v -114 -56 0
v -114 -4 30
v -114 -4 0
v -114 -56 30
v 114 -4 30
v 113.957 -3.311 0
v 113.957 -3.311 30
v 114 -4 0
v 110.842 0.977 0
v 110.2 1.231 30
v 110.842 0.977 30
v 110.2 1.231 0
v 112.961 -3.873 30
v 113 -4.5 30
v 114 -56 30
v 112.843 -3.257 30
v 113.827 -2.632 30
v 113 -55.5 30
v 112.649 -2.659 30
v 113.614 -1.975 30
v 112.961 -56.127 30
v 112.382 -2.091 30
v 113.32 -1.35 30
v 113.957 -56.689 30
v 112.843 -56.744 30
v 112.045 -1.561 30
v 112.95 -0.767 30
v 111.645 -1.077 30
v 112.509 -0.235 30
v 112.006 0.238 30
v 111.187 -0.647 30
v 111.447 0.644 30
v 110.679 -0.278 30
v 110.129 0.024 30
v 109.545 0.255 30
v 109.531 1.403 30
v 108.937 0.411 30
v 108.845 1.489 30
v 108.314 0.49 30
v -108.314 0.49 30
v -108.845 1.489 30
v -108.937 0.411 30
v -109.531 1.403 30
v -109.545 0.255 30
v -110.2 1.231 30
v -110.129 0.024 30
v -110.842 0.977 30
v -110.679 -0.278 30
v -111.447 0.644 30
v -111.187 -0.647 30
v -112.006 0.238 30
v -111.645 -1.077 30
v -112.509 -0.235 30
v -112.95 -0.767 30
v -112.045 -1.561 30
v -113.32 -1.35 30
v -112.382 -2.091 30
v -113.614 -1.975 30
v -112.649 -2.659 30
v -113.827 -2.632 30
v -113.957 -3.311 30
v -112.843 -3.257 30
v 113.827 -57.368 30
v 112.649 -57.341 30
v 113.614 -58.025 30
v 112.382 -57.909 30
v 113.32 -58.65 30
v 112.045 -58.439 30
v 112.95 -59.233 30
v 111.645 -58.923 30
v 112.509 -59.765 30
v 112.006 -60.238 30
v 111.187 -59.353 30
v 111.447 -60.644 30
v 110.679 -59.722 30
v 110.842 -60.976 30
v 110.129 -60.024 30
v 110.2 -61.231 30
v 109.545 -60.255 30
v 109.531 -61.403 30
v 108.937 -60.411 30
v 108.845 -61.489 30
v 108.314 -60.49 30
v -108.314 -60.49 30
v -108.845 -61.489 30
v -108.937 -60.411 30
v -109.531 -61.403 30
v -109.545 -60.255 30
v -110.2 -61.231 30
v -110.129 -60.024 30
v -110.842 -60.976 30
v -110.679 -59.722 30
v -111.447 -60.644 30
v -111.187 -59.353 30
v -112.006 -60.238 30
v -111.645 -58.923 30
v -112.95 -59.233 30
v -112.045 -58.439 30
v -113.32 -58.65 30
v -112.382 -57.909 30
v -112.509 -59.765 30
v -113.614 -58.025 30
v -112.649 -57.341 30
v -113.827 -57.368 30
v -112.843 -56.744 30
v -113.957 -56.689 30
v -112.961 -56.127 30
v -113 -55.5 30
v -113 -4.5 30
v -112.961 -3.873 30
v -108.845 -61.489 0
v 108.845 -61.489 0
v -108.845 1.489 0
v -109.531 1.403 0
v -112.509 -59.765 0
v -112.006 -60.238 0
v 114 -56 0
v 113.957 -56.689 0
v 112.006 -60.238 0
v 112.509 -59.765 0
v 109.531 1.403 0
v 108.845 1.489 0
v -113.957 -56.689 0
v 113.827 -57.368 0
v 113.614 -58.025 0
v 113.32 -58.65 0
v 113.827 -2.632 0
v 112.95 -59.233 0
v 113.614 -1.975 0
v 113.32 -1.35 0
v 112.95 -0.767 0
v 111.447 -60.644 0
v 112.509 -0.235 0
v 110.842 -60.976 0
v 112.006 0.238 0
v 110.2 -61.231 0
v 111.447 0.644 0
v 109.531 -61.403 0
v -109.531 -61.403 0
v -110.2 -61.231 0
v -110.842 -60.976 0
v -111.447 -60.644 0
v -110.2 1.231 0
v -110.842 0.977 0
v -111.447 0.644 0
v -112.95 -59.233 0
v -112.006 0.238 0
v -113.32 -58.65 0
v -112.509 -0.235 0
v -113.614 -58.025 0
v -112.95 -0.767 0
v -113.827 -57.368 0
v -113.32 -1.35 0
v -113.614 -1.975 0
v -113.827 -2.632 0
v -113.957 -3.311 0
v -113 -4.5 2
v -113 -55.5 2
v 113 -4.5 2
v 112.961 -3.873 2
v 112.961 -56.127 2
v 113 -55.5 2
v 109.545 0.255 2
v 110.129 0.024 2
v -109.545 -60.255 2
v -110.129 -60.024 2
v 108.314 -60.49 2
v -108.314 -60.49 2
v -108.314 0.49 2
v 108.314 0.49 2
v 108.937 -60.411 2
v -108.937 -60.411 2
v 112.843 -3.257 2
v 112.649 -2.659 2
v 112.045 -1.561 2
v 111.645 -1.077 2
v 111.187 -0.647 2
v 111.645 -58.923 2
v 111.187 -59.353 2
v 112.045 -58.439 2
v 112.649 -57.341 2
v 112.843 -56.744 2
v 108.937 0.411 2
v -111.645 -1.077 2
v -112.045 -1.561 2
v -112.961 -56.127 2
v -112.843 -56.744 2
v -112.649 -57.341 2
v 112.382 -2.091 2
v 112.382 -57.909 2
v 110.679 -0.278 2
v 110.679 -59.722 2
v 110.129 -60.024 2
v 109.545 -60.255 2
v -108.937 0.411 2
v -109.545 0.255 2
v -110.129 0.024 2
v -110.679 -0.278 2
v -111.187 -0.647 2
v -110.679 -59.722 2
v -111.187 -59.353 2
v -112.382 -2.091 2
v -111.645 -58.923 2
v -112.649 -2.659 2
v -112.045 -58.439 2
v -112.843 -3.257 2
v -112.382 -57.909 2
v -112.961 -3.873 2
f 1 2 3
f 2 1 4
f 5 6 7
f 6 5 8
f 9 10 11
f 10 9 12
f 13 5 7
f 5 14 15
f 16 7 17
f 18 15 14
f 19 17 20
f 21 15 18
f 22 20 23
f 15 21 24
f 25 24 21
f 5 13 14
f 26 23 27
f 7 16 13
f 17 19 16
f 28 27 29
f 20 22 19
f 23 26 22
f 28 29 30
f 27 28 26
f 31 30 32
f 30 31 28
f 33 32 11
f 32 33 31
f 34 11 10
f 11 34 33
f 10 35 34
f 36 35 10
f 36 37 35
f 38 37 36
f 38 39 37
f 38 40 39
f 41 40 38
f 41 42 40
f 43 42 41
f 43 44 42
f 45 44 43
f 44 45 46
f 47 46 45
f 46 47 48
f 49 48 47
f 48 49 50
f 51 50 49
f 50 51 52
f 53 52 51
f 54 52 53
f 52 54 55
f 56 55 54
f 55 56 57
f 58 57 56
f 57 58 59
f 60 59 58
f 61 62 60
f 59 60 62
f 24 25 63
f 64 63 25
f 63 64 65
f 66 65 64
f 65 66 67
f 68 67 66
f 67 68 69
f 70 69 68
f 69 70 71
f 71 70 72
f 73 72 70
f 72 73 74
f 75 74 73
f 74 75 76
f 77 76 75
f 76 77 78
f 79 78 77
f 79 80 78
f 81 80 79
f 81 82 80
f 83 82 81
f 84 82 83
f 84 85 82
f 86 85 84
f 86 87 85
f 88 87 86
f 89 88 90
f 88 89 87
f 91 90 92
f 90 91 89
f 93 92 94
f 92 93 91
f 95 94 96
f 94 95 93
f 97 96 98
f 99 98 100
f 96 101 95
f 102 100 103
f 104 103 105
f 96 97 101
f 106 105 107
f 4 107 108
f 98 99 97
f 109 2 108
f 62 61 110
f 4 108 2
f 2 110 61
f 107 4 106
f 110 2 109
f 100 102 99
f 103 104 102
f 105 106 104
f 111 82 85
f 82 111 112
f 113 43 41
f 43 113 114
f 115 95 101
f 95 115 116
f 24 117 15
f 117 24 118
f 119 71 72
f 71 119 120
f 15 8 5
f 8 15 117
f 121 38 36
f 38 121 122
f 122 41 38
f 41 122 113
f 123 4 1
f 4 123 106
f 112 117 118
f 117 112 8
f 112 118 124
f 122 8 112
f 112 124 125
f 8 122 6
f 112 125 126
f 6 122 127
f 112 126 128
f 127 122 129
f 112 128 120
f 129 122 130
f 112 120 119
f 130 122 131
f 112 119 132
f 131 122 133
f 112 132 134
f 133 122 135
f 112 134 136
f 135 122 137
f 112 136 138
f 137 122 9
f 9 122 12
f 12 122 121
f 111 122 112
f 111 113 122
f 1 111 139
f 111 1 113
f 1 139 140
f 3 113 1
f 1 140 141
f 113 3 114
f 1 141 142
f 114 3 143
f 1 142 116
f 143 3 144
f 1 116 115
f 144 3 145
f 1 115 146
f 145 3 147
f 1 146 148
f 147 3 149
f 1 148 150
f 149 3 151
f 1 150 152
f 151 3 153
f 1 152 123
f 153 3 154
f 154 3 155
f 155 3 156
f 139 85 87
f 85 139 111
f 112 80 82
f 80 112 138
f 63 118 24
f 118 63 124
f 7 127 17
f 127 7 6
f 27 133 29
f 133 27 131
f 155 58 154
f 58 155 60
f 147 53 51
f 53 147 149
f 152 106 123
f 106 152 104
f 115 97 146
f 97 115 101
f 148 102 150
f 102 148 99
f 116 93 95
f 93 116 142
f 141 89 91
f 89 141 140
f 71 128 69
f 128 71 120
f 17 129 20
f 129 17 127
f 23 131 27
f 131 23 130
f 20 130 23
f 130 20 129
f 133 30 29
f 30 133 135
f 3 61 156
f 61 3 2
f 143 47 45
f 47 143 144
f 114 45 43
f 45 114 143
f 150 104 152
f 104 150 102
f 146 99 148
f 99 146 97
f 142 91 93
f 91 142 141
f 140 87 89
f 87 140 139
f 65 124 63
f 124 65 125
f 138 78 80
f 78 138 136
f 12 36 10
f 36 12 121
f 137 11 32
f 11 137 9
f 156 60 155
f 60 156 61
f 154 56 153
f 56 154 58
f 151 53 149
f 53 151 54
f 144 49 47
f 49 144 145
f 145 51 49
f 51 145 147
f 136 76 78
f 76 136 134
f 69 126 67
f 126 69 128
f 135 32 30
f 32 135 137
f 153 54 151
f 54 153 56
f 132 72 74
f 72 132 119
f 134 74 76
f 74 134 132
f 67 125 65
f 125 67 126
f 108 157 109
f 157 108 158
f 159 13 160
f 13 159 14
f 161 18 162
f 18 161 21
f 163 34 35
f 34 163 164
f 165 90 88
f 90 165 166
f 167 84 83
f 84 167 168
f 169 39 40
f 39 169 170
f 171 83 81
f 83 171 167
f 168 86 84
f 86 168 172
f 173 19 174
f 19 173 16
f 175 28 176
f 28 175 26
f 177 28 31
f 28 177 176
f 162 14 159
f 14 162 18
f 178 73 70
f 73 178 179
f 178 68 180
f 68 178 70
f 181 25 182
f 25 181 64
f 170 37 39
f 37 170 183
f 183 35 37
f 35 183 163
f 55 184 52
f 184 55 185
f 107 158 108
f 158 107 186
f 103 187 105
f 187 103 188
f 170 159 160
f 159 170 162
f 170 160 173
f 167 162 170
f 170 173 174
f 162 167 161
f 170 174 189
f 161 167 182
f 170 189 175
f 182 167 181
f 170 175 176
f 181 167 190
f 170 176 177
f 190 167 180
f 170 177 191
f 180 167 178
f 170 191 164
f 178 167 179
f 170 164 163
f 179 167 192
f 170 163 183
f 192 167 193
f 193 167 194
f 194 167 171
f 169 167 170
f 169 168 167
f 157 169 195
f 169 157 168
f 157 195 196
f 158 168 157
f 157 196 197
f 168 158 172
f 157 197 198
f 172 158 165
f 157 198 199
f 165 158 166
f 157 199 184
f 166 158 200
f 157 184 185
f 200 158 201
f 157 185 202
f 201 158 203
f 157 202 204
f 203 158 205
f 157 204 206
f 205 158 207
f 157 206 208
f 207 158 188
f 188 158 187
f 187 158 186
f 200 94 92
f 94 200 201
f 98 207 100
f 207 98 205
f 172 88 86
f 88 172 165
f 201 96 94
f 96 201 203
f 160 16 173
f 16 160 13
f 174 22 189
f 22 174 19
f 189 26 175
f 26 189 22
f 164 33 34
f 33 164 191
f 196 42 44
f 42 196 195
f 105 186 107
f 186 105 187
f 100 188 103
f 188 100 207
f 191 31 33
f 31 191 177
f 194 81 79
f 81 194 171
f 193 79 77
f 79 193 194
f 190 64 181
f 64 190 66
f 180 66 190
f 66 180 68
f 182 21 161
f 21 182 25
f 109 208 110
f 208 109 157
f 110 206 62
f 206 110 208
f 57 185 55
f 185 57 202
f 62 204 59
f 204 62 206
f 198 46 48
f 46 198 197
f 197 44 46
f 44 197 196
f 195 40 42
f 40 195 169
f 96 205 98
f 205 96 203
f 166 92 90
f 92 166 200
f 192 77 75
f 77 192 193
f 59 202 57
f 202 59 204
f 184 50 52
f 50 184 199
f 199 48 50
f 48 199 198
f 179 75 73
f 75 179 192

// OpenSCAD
$fn = 50;


difference() {
	union() {
		translate(v = [0, -30.0000000000, 0]) {
			hull() {
				translate(v = [-108.5000000000, 26.0000000000, 0]) {
					cylinder(h = 30, r = 5.5000000000);
				}
				translate(v = [108.5000000000, 26.0000000000, 0]) {
					cylinder(h = 30, r = 5.5000000000);
				}
				translate(v = [-108.5000000000, -26.0000000000, 0]) {
					cylinder(h = 30, r = 5.5000000000);
				}
				translate(v = [108.5000000000, -26.0000000000, 0]) {
					cylinder(h = 30, r = 5.5000000000);
				}
			}
		}
	}
	union() {
		translate(v = [0, -30.0000000000, 2]) {
			hull() {
				translate(v = [-108.0000000000, 25.5000000000, 0]) {
					cylinder(h = 60, r = 5);
				}
				translate(v = [108.0000000000, 25.5000000000, 0]) {
					cylinder(h = 60, r = 5);
				}
				translate(v = [-108.0000000000, -25.5000000000, 0]) {
					cylinder(h = 60, r = 5);
				}
				translate(v = [108.0000000000, -25.5000000000, 0]) {
					cylinder(h = 60, r = 5);
				}
			}
		}
	}
}
